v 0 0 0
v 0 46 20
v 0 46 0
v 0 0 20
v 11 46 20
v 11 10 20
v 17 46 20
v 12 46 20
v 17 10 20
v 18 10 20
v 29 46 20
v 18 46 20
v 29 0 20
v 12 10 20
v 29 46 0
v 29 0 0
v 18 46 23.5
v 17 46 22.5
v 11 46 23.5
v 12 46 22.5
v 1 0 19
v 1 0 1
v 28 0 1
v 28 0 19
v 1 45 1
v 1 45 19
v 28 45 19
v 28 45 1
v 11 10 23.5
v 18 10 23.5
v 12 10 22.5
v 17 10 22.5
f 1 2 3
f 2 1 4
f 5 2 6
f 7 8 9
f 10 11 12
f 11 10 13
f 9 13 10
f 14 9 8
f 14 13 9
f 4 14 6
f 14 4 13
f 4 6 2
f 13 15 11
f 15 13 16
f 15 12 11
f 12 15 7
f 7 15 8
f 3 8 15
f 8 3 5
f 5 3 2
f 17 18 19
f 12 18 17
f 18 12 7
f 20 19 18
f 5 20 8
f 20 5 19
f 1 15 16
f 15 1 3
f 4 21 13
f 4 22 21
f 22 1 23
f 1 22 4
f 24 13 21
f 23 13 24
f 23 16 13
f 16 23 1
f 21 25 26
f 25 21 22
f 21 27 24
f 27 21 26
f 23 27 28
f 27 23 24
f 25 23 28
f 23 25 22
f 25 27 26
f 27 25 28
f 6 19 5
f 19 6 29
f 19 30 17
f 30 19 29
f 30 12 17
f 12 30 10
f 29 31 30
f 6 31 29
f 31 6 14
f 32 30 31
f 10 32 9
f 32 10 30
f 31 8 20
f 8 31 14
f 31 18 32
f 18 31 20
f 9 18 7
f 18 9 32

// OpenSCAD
module holder_for_battery() {
    // height = 4.5
    // width = 2.7
    // length = 1.8
    difference() {
        cube([2.7+0.2, 4.5+0.1, 1.8+0.2]);
        translate([0.1, -0.01, 0.1]) cube([2.7, 4.51, 1.8]);
    }
    translate([1.1, 1, 2]) difference() {
        cube([0.5+0.2, 4.6-1, 0.25+0.1]);
        translate([0.1, -0.1, -0.1]) cube([0.5, 7, 0.35]);
    }
    
}

$fn=300;
scale([10, 10, 10]) holder_for_battery();
